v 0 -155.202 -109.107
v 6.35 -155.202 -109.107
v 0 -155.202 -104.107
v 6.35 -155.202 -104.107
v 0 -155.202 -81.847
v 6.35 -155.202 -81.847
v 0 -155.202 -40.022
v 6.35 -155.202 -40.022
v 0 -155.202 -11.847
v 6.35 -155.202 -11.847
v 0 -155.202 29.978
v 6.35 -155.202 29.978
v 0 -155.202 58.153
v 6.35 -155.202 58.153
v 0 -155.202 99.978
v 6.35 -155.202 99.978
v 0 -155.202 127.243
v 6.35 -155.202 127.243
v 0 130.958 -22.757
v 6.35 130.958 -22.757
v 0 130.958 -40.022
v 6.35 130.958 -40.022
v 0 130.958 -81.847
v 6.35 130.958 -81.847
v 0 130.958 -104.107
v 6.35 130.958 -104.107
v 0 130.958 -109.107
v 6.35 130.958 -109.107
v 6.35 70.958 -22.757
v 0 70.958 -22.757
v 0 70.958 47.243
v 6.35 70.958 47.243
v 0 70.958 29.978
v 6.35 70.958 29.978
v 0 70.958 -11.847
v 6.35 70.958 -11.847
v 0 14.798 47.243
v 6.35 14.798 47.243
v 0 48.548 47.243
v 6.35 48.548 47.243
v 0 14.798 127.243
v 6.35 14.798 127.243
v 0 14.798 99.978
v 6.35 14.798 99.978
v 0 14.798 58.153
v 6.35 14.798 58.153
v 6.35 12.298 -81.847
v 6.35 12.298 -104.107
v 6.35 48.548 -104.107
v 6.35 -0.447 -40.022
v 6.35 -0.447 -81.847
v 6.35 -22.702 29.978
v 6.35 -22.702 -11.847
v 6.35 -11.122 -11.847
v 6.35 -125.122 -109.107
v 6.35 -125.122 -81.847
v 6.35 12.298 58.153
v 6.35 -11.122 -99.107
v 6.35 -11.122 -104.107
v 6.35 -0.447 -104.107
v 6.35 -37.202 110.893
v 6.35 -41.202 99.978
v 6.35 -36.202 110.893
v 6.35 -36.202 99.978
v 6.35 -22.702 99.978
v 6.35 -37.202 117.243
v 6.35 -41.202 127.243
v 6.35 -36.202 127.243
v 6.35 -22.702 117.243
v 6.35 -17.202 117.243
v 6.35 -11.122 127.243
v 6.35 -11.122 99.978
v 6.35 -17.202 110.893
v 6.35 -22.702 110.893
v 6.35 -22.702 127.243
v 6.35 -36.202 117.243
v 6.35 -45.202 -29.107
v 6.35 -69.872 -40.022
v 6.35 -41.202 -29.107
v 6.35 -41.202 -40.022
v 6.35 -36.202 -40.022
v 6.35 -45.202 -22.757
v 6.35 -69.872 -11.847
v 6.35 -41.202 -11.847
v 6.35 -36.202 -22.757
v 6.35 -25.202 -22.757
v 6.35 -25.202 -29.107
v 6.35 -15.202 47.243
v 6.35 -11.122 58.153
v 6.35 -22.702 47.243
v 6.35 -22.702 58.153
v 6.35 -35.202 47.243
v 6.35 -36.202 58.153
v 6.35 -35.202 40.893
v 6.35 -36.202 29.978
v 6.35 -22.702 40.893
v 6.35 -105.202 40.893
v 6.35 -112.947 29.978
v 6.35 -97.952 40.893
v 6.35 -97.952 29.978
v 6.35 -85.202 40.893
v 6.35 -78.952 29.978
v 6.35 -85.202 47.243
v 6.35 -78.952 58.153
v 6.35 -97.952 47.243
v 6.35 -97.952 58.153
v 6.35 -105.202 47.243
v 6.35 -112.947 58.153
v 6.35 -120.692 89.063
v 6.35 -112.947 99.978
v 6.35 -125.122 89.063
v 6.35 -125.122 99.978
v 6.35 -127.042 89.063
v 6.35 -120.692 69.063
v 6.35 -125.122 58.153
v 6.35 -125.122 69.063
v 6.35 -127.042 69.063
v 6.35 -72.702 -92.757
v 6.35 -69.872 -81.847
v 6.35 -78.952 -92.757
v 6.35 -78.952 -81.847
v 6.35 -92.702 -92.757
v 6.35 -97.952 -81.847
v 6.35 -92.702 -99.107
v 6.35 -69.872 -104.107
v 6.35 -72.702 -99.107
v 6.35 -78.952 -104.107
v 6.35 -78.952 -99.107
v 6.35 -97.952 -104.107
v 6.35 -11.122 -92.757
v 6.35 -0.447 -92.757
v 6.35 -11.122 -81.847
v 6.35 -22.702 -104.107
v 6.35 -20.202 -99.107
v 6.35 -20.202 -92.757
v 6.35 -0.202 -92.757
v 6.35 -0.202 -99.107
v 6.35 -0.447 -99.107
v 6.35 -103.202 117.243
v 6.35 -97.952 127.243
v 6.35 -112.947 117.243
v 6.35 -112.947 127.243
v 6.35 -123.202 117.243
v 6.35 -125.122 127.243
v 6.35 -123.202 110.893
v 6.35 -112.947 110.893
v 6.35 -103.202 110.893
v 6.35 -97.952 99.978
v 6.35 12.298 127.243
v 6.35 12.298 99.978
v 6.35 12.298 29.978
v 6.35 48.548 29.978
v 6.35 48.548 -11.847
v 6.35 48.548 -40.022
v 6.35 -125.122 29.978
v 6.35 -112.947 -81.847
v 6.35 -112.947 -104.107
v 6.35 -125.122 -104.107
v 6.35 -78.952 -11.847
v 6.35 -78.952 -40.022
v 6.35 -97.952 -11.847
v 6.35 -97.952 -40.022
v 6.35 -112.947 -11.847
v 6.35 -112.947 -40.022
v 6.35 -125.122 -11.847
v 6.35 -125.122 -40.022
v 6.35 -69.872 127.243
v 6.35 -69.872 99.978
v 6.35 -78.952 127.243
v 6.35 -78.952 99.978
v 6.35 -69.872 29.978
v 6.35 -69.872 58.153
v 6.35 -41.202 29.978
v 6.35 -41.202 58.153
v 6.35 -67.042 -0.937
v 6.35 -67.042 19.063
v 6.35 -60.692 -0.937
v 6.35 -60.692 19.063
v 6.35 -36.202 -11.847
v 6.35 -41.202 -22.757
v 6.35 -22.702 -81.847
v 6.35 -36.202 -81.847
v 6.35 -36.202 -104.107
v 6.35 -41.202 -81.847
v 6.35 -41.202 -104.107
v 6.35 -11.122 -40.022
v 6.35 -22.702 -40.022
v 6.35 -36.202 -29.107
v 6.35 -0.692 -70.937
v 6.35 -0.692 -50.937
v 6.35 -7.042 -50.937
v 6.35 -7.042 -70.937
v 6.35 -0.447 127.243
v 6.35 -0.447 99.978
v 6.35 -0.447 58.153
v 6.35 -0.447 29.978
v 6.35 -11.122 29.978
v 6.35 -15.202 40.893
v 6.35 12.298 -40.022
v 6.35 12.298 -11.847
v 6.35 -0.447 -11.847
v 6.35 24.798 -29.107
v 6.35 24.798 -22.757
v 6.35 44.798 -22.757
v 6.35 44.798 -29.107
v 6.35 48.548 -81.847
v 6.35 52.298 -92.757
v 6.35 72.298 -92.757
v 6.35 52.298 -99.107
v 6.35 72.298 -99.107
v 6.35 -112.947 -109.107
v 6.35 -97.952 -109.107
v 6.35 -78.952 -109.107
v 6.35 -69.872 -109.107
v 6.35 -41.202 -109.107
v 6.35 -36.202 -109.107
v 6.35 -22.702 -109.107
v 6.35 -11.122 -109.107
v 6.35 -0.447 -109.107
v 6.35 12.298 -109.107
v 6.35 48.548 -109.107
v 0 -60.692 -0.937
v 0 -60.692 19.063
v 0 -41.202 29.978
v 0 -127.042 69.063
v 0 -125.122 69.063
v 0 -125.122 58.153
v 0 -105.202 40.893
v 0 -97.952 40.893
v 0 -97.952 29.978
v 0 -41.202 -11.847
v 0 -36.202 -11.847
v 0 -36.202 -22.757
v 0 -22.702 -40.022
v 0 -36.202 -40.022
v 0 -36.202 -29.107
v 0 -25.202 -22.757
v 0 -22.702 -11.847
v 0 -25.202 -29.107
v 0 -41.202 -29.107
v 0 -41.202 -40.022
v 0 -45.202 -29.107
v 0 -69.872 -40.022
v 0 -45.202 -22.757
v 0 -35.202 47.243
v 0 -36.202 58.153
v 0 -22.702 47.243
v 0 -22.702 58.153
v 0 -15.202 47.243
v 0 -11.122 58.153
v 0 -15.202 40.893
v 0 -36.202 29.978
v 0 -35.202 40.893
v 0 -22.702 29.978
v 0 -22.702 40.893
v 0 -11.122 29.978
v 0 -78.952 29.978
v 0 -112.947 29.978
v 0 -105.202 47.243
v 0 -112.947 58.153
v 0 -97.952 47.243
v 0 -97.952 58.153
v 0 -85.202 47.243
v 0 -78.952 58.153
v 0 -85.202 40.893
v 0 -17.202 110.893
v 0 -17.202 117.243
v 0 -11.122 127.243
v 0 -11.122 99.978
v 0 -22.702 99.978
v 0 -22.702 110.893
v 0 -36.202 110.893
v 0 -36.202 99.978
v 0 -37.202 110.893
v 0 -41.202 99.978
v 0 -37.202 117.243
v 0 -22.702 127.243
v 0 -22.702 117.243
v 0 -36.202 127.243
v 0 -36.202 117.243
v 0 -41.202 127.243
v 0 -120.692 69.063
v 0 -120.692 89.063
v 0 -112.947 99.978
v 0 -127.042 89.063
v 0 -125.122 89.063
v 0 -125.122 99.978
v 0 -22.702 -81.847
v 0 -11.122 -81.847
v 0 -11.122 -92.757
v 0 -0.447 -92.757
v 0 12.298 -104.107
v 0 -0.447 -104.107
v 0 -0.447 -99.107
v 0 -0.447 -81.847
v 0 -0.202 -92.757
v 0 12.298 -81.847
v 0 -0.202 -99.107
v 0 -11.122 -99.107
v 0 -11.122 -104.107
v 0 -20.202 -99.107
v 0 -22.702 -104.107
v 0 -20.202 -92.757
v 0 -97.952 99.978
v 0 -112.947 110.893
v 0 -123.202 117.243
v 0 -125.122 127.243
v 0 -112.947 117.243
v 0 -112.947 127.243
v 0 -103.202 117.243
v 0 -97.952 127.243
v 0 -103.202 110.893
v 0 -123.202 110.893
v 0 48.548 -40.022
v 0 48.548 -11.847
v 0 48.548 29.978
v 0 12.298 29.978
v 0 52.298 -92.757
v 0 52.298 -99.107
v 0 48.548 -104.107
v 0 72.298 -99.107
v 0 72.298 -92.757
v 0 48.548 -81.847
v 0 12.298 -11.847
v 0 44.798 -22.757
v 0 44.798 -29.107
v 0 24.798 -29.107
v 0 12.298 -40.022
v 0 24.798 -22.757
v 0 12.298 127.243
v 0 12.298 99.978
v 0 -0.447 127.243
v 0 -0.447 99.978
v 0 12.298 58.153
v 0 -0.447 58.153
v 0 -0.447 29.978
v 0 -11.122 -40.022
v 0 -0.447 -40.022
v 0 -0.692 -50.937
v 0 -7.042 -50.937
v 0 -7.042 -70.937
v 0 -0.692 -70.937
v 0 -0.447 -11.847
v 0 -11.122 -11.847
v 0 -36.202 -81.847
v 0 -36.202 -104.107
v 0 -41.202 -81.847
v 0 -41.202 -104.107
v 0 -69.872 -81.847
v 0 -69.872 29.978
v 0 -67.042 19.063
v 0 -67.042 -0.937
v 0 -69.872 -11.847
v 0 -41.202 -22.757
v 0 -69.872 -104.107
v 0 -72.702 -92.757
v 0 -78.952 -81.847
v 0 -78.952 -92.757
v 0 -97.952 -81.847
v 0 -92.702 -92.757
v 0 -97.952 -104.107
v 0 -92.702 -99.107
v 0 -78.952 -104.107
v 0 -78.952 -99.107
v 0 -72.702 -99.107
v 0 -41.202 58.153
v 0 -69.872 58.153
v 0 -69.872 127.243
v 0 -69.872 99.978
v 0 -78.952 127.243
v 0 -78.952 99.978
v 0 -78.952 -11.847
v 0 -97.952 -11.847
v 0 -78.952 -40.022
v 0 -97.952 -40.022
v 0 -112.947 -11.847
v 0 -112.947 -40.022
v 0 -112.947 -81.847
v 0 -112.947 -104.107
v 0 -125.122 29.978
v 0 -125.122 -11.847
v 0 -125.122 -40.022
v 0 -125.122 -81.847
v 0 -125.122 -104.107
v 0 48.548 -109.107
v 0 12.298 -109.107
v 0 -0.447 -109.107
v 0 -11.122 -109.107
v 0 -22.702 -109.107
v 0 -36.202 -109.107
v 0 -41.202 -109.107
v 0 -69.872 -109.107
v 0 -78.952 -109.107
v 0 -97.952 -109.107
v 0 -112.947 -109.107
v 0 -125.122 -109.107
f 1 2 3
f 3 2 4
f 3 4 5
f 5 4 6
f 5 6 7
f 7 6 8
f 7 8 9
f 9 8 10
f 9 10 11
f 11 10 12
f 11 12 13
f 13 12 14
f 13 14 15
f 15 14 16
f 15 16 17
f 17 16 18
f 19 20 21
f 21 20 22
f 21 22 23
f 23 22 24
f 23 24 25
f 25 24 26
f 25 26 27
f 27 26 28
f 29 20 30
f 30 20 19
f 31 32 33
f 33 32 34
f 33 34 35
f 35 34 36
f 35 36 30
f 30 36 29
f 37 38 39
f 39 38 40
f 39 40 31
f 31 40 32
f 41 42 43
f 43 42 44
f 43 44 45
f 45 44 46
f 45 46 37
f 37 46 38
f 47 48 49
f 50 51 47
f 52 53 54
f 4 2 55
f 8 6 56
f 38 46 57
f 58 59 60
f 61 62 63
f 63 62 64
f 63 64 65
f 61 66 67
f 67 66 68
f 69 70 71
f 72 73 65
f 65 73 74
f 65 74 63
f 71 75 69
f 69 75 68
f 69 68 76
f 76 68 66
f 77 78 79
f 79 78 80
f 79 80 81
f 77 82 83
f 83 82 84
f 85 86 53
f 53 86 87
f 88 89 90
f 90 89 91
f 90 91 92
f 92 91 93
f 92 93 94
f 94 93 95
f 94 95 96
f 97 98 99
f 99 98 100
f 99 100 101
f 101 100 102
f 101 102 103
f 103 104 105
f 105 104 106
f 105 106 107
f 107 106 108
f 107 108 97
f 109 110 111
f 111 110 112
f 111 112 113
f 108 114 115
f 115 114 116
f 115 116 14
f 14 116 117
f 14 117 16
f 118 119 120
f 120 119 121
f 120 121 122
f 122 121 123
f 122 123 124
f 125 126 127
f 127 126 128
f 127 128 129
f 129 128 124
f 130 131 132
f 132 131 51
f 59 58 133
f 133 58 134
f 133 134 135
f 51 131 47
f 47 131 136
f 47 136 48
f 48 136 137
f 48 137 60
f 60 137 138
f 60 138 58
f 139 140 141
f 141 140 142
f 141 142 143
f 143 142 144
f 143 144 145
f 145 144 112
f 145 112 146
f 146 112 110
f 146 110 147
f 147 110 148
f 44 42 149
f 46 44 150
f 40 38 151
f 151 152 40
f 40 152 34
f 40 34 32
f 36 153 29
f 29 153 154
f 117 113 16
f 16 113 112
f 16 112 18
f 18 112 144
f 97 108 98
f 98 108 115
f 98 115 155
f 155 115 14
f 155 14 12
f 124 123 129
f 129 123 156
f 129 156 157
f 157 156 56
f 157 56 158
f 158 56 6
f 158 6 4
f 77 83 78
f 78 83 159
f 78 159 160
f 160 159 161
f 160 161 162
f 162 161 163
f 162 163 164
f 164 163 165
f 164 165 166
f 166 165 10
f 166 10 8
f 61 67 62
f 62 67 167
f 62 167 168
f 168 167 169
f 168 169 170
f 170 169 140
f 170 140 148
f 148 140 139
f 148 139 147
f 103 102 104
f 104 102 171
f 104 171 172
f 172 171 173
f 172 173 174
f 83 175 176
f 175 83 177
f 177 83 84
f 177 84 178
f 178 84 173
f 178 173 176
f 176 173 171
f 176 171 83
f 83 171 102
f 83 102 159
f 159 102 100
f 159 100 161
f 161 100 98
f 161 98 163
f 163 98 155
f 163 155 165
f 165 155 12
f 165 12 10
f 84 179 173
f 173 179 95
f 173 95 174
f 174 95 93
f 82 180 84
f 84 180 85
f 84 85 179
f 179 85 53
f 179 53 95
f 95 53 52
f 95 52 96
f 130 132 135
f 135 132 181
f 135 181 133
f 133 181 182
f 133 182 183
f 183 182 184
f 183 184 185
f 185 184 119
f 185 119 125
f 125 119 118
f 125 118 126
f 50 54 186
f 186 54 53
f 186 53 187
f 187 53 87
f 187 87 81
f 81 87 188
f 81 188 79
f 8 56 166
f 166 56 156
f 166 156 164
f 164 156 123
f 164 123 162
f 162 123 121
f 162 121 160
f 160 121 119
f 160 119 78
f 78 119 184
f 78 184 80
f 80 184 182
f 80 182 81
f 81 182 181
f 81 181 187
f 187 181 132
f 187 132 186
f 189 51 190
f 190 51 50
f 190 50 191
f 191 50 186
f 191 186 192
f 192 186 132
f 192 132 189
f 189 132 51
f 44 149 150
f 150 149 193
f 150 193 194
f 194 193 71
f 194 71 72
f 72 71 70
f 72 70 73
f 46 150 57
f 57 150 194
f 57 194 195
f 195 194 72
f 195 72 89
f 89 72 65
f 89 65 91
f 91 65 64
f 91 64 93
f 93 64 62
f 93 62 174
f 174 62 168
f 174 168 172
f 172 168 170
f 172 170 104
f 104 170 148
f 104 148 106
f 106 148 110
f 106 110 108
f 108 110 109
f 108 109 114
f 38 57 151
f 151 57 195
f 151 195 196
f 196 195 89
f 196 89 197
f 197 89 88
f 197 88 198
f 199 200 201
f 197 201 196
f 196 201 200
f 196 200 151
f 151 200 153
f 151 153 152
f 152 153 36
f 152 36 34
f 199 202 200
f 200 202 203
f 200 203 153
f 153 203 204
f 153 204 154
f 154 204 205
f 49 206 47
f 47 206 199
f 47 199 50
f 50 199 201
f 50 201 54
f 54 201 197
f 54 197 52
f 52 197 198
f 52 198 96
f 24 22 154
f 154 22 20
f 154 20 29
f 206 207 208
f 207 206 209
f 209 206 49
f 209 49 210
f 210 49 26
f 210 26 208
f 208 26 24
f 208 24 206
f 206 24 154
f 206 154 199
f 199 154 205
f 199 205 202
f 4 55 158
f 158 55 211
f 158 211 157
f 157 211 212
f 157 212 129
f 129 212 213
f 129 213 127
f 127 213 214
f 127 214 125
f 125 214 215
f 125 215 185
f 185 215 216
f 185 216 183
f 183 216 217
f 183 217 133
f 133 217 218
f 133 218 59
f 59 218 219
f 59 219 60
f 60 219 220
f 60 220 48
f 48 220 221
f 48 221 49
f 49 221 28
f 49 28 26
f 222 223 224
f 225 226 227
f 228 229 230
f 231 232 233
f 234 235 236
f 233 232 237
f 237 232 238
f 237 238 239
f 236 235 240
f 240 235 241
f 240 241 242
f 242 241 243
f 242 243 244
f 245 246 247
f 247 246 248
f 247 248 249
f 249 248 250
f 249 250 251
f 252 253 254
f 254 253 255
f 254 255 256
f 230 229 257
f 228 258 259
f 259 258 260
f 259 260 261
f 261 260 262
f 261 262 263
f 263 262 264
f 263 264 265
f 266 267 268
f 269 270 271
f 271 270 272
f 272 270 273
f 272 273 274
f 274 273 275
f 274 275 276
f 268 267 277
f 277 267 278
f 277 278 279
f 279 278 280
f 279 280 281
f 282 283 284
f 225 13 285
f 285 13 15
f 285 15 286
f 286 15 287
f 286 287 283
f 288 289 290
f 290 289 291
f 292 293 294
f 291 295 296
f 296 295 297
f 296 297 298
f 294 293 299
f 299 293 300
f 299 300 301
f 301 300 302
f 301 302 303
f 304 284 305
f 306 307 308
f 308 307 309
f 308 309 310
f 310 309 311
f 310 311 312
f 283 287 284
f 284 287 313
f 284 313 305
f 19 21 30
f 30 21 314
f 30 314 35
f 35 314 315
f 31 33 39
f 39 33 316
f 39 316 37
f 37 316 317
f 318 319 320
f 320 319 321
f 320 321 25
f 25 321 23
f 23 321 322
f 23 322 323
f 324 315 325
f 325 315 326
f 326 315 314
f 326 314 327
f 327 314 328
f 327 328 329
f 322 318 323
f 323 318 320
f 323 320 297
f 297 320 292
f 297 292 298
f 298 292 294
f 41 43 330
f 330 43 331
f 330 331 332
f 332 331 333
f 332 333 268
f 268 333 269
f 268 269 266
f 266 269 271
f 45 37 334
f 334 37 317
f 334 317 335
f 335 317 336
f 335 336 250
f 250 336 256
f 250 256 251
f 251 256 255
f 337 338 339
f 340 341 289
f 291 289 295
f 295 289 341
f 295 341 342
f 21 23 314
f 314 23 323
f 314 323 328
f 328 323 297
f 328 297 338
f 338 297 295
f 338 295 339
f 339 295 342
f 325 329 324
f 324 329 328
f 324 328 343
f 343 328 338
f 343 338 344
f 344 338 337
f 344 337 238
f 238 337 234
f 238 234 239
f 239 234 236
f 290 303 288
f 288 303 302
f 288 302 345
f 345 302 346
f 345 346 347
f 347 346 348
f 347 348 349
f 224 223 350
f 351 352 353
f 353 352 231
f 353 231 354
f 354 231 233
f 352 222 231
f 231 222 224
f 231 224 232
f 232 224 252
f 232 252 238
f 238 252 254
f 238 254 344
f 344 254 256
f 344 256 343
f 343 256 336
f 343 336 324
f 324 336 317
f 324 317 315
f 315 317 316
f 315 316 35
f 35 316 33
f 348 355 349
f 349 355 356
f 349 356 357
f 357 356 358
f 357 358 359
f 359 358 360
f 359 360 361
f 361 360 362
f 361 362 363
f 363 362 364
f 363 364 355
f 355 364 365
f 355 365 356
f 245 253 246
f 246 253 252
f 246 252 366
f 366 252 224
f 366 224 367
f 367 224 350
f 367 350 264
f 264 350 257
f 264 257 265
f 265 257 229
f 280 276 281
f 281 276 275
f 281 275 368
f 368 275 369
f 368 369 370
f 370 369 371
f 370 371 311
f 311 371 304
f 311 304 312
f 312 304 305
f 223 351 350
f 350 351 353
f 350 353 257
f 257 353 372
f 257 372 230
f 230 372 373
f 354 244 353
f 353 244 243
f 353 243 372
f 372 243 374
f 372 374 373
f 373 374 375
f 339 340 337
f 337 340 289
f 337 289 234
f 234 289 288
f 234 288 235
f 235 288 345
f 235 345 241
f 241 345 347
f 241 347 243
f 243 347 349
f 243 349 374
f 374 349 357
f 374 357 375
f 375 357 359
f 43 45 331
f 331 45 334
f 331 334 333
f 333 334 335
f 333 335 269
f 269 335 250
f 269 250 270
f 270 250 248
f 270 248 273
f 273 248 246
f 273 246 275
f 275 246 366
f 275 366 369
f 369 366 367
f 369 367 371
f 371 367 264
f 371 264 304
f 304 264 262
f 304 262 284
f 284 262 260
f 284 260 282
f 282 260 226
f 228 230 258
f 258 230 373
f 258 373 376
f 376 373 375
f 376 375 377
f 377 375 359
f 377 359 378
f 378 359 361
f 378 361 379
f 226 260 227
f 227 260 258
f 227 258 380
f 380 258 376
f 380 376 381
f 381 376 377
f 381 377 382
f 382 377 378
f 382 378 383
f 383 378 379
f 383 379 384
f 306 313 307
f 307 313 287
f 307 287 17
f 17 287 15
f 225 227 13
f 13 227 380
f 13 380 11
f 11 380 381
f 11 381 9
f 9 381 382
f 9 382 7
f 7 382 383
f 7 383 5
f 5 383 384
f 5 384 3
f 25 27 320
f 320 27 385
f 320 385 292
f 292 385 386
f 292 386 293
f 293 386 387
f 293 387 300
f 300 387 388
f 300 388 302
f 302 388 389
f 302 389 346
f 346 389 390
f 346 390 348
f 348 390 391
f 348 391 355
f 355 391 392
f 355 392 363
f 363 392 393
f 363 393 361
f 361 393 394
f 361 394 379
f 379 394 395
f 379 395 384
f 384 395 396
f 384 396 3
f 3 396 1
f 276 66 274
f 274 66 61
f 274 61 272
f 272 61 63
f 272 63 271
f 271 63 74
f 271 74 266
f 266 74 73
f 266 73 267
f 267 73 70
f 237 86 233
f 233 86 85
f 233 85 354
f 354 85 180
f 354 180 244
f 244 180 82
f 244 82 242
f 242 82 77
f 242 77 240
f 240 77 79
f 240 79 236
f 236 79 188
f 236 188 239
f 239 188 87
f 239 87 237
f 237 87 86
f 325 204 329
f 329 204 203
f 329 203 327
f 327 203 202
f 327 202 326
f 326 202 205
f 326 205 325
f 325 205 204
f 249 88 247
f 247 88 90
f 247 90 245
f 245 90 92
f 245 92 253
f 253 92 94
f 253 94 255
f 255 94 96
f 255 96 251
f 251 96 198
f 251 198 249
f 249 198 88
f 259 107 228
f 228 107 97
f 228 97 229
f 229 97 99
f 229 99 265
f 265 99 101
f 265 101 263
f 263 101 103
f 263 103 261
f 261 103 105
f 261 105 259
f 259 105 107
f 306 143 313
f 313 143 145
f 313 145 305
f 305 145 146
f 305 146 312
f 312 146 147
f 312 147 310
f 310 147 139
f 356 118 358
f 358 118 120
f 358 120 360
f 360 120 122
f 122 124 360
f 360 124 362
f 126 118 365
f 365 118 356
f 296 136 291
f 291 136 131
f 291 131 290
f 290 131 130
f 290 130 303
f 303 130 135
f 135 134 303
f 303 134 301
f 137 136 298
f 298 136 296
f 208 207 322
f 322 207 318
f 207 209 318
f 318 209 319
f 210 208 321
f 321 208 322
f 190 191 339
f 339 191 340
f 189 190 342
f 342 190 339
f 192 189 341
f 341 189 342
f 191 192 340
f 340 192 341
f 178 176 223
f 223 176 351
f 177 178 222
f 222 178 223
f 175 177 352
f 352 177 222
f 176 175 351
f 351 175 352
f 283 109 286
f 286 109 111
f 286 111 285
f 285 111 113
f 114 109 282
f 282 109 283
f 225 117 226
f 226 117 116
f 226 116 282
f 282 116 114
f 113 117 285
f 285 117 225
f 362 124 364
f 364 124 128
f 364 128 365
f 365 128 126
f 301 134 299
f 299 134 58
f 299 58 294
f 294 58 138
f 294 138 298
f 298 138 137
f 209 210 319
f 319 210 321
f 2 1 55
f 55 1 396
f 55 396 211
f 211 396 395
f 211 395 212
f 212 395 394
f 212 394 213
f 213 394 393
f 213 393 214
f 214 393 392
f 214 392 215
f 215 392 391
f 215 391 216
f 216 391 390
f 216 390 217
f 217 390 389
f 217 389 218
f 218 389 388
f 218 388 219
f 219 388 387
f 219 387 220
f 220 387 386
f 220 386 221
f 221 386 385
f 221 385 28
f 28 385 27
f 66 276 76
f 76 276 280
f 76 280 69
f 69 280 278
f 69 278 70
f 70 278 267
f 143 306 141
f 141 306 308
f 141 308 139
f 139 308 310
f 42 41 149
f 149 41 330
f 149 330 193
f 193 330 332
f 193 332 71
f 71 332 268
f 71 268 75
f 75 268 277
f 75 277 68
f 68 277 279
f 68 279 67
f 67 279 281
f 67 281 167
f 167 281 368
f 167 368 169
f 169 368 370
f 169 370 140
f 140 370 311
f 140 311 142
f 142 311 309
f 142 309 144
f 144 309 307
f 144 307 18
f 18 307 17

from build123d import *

# Parameters (mm, degrees)
SALIENTE_EXTRUIR1_DEPTH = 6.35
CROQUIS2_W              = 6.35
CROQUIS2_H              = 20
CORTAR_EXTRUIR1_DEPTH   = 10
CROQUIS3_W              = 6.35
CROQUIS3_H              = 286.16
SALIENTE_EXTRUIR2_DEPTH = 6.35
CROQUIS4_W              = 6.35
CROQUIS4_H              = 20
CORTAR_EXTRUIR2_DEPTH   = 6.35
CROQUIS5_W              = 20
CROQUIS5_H              = 6.35
CORTAR_EXTRUIR3_DEPTH   = 10
CROQUIS6_W              = 10
CROQUIS6_H              = 286.16
CROQUIS6_H_2            = 170
SALIENTE_EXTRUIR3_DEPTH = 6.35


with BuildPart() as part:
    # Croquis1 → Saliente-Extruir1 (new body)
    with BuildSketch(Plane(origin=(0, 0, 0), x_dir=(0, 0, -1), z_dir=(1, 0, 0))):
        Polygon((-117.242954184, -155.20246182), (-117.242954184, 14.79753818), (-47.242954184, 14.79753818), (-47.242954184, 70.95753818), (22.757045816, 70.95753818), (22.757045816, 130.95753818), (92.757045816, 130.95753818), (92.757045816, -155.20246182), align=None)
    extrude(amount=SALIENTE_EXTRUIR1_DEPTH)

    # Croquis2 → Cortar-Extruir1 (cut)
    with BuildSketch(Plane.ZY):
        with Locations((114.067954184, -27.20246182)):
            Rectangle(CROQUIS2_W, CROQUIS2_H)
        with Locations((114.067954184, -113.20246182)):
            Rectangle(CROQUIS2_W, CROQUIS2_H)
        with Locations((44.067954184, -25.20246182)):
            Rectangle(CROQUIS2_W, CROQUIS2_H)
        with Locations((44.067954184, -95.20246182)):
            Rectangle(CROQUIS2_W, CROQUIS2_H)
        with Locations((-25.932045816, 34.79753818)):
            Rectangle(CROQUIS2_W, CROQUIS2_H)
        with Locations((-25.932045816, -35.20246182)):
            Rectangle(CROQUIS2_W, CROQUIS2_H)
    extrude(amount=-CORTAR_EXTRUIR1_DEPTH, mode=Mode.SUBTRACT)

    # Croquis3 → Saliente-Extruir2 (add)
    with BuildSketch(Plane(origin=(0, 0, 0), x_dir=(0, 0, -1), z_dir=(1, 0, 0))):
        with Locations((95.932045816, -12.12246182)):
            Rectangle(CROQUIS3_W, CROQUIS3_H)
    extrude(amount=SALIENTE_EXTRUIR2_DEPTH)

    # Croquis4 → Cortar-Extruir2 (cut)
    with BuildSketch(Plane.ZY):
        with Locations((-95.932045816, -10.20246182)):
            Rectangle(CROQUIS4_W, CROQUIS4_H)
        with Locations((-95.932045816, 62.29753818)):
            Rectangle(CROQUIS4_W, CROQUIS4_H)
        with Locations((-95.932045816, -82.70246182)):
            Rectangle(CROQUIS4_W, CROQUIS4_H)
    extrude(amount=-CORTAR_EXTRUIR2_DEPTH, mode=Mode.SUBTRACT)

    # Croquis5 → Cortar-Extruir3 (cut)
    with BuildSketch(Plane(origin=(6.35, 0, 0), x_dir=(0, 0, -1), z_dir=(1, 0, 0))):
        with Locations((-79.062954184, -123.86746182)):
            Rectangle(CROQUIS5_W, CROQUIS5_H)
        with Locations((-9.062954184, -63.86746182)):
            Rectangle(CROQUIS5_W, CROQUIS5_H)
        with Locations((60.937045816, -3.86746182)):
            Rectangle(CROQUIS5_W, CROQUIS5_H)
    extrude(amount=-CORTAR_EXTRUIR3_DEPTH, mode=Mode.SUBTRACT)

    # Croquis6 → Saliente-Extruir3 (add)
    with BuildSketch(Plane(origin=(0, 0, 0), x_dir=(0, 0, -1), z_dir=(1, 0, 0))):
        with Locations((104.107045816, -12.12246182)):
            Rectangle(CROQUIS6_W, CROQUIS6_H)
        with Locations((-122.242954184, -70.20246182)):
            Rectangle(CROQUIS6_W, CROQUIS6_H_2)
    extrude(amount=SALIENTE_EXTRUIR3_DEPTH)


solid = part.part
